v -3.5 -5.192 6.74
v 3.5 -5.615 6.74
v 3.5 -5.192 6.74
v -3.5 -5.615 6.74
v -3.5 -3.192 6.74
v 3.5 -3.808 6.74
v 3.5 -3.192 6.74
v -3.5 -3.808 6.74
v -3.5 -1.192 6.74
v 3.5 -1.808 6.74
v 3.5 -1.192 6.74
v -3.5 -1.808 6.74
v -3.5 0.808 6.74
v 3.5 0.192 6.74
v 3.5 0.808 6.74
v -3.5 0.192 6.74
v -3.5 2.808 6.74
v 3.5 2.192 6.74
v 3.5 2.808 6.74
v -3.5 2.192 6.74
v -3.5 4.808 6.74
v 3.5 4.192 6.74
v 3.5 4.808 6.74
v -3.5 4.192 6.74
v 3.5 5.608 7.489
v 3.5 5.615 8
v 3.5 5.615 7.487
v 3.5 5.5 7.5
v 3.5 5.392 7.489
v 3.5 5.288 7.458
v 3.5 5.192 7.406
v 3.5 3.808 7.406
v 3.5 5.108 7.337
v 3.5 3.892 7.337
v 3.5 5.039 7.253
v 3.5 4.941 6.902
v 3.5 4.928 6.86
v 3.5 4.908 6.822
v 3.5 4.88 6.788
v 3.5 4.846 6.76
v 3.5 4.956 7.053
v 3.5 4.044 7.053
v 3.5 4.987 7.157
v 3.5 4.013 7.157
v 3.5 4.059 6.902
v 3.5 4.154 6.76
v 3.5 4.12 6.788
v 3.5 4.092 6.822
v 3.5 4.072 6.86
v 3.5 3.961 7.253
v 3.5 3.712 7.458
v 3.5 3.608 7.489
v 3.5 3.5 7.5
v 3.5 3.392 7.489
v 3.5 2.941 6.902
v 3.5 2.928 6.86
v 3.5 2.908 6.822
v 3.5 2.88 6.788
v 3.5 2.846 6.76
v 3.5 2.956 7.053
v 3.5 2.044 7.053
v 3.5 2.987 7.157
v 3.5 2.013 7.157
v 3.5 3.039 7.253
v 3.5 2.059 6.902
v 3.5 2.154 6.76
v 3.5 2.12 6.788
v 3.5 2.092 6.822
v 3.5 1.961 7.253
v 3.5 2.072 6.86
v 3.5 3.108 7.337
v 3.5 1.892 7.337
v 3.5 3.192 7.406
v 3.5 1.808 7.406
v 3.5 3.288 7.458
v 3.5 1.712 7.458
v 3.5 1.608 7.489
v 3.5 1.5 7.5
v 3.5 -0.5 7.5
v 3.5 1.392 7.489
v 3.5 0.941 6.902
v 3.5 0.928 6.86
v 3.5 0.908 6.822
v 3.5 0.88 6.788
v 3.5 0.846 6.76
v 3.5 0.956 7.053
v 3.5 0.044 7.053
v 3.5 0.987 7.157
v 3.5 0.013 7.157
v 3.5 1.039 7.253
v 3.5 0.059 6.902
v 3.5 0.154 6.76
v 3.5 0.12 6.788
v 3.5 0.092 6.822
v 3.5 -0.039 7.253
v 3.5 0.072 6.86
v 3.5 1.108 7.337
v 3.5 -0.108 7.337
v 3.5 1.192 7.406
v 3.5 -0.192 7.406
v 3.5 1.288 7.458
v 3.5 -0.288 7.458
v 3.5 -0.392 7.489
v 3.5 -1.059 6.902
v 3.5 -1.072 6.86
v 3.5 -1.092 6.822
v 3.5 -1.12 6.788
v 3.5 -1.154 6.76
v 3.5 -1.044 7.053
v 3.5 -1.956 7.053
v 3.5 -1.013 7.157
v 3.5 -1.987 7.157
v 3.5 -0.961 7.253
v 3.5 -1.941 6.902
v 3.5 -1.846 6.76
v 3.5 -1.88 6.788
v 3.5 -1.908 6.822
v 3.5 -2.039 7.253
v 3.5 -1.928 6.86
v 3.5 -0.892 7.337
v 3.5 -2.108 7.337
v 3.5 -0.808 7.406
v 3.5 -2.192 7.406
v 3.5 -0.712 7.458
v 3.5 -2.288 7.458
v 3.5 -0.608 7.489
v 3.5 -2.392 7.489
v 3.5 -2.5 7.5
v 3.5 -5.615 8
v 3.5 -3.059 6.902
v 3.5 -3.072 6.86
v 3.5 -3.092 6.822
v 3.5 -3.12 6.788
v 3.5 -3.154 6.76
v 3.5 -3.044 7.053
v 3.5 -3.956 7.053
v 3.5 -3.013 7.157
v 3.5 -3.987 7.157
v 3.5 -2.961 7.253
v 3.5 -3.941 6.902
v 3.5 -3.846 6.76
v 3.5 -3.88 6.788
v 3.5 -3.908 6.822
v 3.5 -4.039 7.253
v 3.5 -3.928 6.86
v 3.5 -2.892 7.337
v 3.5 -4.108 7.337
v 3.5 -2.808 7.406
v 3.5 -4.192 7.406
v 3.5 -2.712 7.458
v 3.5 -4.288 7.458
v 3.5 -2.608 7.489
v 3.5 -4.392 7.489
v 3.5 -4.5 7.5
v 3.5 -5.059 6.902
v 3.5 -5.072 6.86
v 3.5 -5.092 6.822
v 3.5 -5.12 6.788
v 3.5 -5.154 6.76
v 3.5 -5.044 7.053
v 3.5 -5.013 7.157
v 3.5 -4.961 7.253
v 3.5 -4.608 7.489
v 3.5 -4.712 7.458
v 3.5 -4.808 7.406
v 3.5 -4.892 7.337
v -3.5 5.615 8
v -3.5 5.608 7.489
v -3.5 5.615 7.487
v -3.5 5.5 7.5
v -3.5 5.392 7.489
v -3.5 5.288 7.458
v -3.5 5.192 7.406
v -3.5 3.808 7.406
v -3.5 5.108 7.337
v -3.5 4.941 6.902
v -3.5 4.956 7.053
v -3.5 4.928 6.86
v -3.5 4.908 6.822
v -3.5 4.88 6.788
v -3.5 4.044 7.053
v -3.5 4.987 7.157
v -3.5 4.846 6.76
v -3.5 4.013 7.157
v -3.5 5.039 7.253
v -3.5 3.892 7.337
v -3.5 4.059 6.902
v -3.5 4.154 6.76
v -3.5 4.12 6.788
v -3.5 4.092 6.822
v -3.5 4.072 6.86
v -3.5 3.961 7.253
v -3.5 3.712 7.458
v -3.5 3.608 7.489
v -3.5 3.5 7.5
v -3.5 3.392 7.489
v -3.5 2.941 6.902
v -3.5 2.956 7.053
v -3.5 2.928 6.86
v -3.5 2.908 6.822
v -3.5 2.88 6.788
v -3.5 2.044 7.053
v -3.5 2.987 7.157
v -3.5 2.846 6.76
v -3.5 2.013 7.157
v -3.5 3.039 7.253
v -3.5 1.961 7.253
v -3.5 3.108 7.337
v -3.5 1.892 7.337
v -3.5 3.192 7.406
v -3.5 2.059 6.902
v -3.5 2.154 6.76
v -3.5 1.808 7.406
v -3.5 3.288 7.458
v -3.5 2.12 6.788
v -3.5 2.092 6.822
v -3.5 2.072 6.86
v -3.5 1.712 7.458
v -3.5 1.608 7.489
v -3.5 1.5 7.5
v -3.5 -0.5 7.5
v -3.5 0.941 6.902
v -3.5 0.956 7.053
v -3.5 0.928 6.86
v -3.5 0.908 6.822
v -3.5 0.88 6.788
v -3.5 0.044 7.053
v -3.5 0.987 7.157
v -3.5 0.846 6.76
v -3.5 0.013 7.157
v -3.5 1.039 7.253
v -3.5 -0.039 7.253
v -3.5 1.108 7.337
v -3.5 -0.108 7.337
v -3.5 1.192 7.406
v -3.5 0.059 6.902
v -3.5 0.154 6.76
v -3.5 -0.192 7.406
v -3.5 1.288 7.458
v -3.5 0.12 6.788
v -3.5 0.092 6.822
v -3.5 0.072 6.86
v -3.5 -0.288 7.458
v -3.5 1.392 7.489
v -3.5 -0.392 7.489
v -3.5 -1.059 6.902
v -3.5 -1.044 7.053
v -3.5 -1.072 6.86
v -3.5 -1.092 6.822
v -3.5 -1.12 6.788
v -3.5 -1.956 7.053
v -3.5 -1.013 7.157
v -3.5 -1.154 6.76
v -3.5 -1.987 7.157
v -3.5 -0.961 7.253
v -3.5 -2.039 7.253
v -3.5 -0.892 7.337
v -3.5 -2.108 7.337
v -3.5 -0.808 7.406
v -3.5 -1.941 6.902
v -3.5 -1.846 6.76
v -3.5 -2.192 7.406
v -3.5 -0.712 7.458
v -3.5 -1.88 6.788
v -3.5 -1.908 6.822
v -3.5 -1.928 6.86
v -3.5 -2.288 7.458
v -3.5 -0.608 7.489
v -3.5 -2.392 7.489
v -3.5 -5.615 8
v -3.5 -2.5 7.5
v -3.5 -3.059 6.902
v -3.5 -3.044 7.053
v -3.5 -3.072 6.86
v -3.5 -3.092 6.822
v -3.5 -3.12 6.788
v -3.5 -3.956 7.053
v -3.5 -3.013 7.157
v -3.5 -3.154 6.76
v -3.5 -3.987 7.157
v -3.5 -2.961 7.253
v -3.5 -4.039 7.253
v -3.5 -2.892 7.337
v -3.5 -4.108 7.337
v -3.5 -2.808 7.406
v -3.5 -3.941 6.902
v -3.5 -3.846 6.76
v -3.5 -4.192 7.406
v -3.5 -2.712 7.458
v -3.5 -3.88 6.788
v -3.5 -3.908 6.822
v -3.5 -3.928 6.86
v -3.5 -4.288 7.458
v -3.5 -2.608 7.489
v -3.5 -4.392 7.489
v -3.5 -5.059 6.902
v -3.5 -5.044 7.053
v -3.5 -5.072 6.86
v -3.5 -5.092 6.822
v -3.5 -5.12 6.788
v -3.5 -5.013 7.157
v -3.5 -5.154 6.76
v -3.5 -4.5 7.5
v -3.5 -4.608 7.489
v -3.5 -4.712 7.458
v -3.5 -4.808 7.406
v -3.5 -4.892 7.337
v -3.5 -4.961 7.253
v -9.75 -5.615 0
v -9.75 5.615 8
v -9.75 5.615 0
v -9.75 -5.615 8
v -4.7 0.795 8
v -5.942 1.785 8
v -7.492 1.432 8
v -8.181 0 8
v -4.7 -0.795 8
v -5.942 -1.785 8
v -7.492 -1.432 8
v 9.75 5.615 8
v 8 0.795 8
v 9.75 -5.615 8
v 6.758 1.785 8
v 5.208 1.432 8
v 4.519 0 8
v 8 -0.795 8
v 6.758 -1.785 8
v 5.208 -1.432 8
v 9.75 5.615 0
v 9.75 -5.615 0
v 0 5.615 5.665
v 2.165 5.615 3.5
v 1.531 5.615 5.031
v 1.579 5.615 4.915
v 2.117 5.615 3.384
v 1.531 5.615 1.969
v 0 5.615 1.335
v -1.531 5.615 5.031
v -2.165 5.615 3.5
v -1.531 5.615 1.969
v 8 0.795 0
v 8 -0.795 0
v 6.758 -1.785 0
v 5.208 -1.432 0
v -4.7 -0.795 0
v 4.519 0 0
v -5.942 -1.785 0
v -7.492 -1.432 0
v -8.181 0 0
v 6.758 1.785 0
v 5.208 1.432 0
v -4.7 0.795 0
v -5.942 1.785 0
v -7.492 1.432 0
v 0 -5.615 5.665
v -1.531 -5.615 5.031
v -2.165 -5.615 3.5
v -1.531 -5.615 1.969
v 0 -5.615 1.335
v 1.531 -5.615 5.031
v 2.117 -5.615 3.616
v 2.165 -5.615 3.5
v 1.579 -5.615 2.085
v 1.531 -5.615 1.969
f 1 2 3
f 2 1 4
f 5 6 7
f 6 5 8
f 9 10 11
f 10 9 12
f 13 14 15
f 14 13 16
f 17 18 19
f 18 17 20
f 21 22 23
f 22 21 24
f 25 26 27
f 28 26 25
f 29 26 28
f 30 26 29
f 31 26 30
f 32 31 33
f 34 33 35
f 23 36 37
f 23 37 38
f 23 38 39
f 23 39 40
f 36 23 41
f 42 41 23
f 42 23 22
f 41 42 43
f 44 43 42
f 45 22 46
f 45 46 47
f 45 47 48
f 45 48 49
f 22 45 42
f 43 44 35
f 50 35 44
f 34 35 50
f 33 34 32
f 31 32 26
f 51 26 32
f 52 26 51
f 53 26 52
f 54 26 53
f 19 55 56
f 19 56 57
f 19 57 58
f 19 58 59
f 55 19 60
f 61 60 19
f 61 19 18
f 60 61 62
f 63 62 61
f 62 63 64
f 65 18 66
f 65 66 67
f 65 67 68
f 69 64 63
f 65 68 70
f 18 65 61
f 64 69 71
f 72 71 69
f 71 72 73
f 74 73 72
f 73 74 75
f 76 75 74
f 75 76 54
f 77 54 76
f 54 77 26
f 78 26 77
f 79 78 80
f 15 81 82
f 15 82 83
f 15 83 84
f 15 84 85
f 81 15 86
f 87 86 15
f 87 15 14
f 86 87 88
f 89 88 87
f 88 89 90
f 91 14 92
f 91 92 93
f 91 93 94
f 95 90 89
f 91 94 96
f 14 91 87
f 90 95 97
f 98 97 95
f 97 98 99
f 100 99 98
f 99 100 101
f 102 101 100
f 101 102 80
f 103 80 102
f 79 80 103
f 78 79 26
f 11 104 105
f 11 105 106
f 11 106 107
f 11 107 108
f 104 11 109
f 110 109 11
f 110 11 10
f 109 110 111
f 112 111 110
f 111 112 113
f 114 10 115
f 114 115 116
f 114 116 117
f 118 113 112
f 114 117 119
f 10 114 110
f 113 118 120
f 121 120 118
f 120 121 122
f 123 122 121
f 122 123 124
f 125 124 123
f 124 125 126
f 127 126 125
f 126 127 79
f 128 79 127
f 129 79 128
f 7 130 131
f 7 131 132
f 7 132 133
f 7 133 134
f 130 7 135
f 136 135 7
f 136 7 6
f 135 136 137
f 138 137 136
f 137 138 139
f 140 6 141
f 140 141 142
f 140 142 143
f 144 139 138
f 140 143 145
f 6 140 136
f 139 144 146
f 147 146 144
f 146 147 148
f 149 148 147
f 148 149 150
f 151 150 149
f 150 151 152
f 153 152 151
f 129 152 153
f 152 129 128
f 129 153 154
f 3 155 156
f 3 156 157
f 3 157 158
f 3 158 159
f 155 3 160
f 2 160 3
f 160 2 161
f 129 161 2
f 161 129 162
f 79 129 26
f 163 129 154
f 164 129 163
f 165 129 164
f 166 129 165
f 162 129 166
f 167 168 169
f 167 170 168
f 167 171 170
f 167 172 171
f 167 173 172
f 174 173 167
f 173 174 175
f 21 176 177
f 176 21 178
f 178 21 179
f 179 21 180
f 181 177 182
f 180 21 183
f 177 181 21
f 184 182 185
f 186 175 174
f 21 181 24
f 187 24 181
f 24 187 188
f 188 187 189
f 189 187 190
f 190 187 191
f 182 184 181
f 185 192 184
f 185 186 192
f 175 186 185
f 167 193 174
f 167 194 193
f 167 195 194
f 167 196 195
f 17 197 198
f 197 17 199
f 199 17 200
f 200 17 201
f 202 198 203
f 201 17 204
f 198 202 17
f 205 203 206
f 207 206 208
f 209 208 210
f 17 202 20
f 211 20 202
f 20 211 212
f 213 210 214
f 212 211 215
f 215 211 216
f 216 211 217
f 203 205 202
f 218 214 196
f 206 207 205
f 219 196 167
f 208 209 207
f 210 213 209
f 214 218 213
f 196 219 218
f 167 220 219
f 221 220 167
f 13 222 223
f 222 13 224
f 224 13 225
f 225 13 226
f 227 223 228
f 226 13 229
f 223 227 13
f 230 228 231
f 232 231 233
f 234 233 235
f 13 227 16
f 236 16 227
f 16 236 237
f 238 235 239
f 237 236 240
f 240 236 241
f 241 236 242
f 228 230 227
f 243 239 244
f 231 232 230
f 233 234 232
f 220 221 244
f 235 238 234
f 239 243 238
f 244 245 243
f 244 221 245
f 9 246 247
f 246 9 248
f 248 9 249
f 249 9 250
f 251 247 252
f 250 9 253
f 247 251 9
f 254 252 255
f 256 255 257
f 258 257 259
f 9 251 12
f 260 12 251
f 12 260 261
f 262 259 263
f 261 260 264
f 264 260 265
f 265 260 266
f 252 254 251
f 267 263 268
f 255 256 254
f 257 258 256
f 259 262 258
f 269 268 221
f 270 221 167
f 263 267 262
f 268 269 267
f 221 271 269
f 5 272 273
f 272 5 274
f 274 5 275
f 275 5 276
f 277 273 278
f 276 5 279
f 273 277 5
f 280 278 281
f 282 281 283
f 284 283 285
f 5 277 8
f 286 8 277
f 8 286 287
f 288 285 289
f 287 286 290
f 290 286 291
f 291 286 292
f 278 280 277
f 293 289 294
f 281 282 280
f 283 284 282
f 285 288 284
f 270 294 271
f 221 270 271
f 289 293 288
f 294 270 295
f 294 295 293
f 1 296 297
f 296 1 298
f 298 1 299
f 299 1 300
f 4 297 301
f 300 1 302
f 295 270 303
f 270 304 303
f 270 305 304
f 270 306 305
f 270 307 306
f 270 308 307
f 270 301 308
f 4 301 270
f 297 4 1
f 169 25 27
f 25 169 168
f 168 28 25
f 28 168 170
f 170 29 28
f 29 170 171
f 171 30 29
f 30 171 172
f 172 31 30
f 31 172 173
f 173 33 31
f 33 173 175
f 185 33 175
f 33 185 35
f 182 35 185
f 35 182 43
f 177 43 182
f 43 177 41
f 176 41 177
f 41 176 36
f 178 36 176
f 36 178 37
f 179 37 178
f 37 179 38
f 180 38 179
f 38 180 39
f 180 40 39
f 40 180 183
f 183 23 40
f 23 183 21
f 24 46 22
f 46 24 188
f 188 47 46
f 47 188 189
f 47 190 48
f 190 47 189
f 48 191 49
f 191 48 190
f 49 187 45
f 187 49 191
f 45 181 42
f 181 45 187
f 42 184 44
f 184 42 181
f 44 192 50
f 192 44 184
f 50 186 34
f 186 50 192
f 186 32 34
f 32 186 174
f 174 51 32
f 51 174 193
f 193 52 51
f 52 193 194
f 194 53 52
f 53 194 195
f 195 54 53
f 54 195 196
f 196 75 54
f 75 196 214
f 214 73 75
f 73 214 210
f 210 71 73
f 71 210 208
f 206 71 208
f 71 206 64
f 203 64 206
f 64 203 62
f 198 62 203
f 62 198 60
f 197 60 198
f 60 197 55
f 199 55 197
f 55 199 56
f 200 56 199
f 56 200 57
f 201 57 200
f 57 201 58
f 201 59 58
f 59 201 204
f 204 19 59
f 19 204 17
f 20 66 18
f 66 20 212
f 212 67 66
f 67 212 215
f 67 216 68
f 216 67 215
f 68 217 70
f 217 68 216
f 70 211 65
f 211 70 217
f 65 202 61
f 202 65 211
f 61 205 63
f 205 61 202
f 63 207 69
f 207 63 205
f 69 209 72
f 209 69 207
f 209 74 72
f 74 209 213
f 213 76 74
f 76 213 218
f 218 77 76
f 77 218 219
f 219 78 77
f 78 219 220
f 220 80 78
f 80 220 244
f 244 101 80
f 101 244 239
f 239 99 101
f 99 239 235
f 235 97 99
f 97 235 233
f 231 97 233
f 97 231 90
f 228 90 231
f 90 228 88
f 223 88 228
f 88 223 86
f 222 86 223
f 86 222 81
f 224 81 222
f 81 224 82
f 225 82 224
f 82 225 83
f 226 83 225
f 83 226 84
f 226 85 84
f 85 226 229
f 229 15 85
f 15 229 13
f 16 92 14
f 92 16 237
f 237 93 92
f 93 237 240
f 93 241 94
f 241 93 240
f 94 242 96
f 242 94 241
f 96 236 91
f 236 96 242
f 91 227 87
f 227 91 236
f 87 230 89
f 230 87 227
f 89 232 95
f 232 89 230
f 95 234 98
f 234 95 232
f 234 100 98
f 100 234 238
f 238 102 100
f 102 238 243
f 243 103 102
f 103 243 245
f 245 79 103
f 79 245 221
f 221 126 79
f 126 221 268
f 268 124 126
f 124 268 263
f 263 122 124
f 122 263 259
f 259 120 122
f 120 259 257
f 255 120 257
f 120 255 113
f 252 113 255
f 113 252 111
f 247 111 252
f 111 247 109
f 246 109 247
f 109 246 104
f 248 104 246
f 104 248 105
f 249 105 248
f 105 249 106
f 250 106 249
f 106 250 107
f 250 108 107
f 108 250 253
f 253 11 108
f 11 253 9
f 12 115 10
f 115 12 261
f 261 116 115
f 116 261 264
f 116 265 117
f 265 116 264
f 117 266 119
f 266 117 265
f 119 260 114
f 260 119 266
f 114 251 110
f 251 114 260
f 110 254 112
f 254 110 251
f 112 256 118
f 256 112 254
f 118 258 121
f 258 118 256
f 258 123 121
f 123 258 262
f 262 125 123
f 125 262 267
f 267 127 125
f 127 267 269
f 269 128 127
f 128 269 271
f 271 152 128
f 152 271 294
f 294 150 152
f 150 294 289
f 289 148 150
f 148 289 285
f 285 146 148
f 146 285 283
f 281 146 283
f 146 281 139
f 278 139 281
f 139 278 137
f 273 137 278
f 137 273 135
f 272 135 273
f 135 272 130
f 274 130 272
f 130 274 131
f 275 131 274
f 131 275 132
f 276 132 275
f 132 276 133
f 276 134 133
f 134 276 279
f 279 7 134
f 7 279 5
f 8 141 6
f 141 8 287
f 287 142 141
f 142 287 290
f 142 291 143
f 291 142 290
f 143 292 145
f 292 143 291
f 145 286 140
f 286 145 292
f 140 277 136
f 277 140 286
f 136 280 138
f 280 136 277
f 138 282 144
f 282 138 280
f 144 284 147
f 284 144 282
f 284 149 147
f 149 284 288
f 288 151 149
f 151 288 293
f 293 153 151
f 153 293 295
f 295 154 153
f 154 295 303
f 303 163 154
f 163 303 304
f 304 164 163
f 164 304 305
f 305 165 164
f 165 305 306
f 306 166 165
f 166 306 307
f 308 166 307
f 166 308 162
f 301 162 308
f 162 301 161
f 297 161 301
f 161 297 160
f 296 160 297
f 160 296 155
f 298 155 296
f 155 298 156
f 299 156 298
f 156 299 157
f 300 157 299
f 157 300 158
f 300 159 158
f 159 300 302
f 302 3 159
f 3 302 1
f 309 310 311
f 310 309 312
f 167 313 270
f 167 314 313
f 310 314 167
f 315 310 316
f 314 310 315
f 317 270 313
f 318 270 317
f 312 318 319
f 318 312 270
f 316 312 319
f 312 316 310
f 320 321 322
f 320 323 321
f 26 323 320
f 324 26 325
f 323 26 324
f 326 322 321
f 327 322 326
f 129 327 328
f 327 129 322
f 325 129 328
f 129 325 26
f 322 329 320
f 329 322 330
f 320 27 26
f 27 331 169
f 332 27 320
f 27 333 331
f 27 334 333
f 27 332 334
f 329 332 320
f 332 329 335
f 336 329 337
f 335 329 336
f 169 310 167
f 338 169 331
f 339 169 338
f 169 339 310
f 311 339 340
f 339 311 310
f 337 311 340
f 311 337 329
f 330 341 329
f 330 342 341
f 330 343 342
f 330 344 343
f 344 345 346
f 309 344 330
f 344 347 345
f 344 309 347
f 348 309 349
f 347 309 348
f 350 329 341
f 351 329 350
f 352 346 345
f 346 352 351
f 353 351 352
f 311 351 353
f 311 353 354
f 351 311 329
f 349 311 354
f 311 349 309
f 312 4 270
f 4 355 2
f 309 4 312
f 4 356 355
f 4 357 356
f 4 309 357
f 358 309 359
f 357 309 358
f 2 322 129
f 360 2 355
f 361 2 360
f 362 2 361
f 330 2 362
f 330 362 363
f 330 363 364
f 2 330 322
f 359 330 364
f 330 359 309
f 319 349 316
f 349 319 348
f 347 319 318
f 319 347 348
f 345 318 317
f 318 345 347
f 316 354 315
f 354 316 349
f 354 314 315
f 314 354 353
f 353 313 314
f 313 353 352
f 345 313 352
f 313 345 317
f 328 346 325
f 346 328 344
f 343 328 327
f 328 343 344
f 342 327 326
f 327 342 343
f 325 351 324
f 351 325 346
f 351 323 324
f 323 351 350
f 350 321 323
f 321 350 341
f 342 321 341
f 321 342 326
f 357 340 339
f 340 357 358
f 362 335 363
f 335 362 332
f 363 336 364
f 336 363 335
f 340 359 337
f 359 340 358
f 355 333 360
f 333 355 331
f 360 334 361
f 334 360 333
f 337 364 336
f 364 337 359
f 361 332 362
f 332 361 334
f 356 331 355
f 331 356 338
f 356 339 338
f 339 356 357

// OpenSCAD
// file: configuration.scad
x_rod_distance = 45;

// Select your belt type ******************************************************

//T2.5
//belt_tooth_distance = 2.032;
//belt_tooth_ratio = 0.5;

//T5 (strongly discouraged)
//belt_tooth_distance = 5;
//belt_tooth_ratio = 0.75;

//HTD3
//belt_tooth_distance = 3;
//belt_tooth_ratio = 0.75;

//MXL
belt_tooth_distance = 2.032;
belt_tooth_ratio = 0.64;

// Select your hot-end mount ******************************************************

// 0 = none; 1 = groove-mount (J-head/MakerGear etc.)
hotend_mount = 1;

hotend_groovemount_depth = 10;
hotend_groovemount_diameter = 16;

// Standard screws with slightly wider holes
radius3mm = 1.5;
radius4mm = 2.0;
hole_3mm = radius3mm + 0.25;
hole_4mm = radius4mm + 0.25;

radius608zz = 11;
// main file
// PRUSA Mendel
// Belt clamp
// GNU GPL v3
// Josef Průša
// josefprusa@me.com
// prusadjs.cz
// http://www.reprap.org/wiki/Prusa_Mendel
// http://github.com/prusajr/PrusaMendel
//
// modified by neurofun - https://www.thingiverse.com/thing:21731
// GT2 belt profile logic from https://www.thingiverse.com/thing:620755
//
// Works with https://www.thingiverse.com/thing:133065 for GT2, original
// was for MXL only ... and I had issues cracking this piece.
//
// Printed long end up (e.g. along Z axis)
//

include <configuration.scad>
include <MCAD/polyholes.scad>

module teeth(width, pitch, radius, inner_radius)
{
    circle(r = radius, $fn = 32);

    for (x = [-1, 1])
    {
        translate([x * (radius + inner_radius), 0])
        intersection()
        {
            translate([x * -inner_radius, -inner_radius])
            square([inner_radius * 2, inner_radius * 2], center = true);

            difference()
            {
                circle(r = inner_radius + 1, $fn = 32);

                translate([0, 0])
                circle(r = inner_radius, $fn = 32);
            }
        }
    }
}



module belt(width, length, pitch, height, teeth_height, radius)
{
    teeth_count = ceil(length / pitch) - 1;

    rotate([90, 0, 0])
    translate([length * -0.5, height * -0.5, 0])
    linear_extrude(height = width, center = true, convexity = 10)
    {
        // Rectangular base
        square([length, height - teeth_height]);

        // Teeths
        translate([0, height - radius])
        for (i = [0:teeth_count])
        {
            translate([pitch * 0.5 + i * pitch, 0])
            teeth(
                width = width,
                pitch = pitch,
                radius = radius,
                inner_radius = radius * 0.4,
                teeth_height = teeth_height);
        }
    }
}

module inverse_belt(width, length, pitch, height, teeth_height, radius)
{
    difference()
    {
        translate([length * -0.5, width * -0.5, height * -0.5])
        cube([length, width, height]);

        rotate([180, 0, 0])
        translate([0, 0, height * -0.5])
        belt(
            width = width + 1,
            length = length,
            pitch = pitch,
            height = height,
            teeth_height = teeth_height,
            radius = radius);
    }
}

module gt2_belt(width, length)
{
    belt(
        width = width,
        length = length,
        pitch = 2,
        height = 1.52,
        teeth_height = 0.76,
        radius = 0.555);
}

module inverse_gt2_belt(width, length)
{
    inverse_belt(
        width = width,
        length = length,
        pitch = 2,
        height = 1.52,
        teeth_height = 0.76,
        radius = 0.555);
}

module beltclamp(){

m3_diameter = 3.3;

total_length = 19.5;
clamp_height = 8;
clamp_width = 11.23;
clamp_length = 0.5 * 25.4;		// distance between the center of the 2 holes
belt_pitch = 2;
belt_width = 7;
tooth_width = 1.3;
tooth_heigth = 0.75;
offset = belt_pitch/4;
// uncomment next line for a symetric clamp
//offset = 0;

	difference()
   {
      // basic shape
      translate(v = [0,0,clamp_height/2]) cube([total_length,clamp_width,clamp_height], center=true);

		// screw holes - h, d
		translate(v = [-clamp_length/2, 0, -1]) polyhole(clamp_height+2, m3_diameter);
		translate(v = [clamp_length/2, 0, -1]) polyhole(clamp_height+2, m3_diameter);
		translate(v = [-clamp_length/2, 0, -1]) polyhole(clamp_height+2, m3_diameter);

      // bolt heads, for part b - unnecessary
//		translate(v = [-clamp_length/2, 0, -1]) cylinder($fn=6, h=3.5, d=8);
//		translate(v = [clamp_length/2, 0, -1]) cylinder($fn=6, h=3.5, d=8);

      // tension adj screw free fit
      translate([0, 1+clamp_width/2, -0.5+clamp_height/2]) rotate([90, 0, 0]) polyhole(clamp_width+2, 4);

		// belt grip
      translate(v = [0,offset,clamp_height-0.5]) rotate([180,0,90]) inverse_gt2_belt(7, 20);
      translate(v = [0,0,clamp_height + 0.5 + 0.001]) cube([belt_width, clamp_width, 1], true);
	}
}

beltclamp();
